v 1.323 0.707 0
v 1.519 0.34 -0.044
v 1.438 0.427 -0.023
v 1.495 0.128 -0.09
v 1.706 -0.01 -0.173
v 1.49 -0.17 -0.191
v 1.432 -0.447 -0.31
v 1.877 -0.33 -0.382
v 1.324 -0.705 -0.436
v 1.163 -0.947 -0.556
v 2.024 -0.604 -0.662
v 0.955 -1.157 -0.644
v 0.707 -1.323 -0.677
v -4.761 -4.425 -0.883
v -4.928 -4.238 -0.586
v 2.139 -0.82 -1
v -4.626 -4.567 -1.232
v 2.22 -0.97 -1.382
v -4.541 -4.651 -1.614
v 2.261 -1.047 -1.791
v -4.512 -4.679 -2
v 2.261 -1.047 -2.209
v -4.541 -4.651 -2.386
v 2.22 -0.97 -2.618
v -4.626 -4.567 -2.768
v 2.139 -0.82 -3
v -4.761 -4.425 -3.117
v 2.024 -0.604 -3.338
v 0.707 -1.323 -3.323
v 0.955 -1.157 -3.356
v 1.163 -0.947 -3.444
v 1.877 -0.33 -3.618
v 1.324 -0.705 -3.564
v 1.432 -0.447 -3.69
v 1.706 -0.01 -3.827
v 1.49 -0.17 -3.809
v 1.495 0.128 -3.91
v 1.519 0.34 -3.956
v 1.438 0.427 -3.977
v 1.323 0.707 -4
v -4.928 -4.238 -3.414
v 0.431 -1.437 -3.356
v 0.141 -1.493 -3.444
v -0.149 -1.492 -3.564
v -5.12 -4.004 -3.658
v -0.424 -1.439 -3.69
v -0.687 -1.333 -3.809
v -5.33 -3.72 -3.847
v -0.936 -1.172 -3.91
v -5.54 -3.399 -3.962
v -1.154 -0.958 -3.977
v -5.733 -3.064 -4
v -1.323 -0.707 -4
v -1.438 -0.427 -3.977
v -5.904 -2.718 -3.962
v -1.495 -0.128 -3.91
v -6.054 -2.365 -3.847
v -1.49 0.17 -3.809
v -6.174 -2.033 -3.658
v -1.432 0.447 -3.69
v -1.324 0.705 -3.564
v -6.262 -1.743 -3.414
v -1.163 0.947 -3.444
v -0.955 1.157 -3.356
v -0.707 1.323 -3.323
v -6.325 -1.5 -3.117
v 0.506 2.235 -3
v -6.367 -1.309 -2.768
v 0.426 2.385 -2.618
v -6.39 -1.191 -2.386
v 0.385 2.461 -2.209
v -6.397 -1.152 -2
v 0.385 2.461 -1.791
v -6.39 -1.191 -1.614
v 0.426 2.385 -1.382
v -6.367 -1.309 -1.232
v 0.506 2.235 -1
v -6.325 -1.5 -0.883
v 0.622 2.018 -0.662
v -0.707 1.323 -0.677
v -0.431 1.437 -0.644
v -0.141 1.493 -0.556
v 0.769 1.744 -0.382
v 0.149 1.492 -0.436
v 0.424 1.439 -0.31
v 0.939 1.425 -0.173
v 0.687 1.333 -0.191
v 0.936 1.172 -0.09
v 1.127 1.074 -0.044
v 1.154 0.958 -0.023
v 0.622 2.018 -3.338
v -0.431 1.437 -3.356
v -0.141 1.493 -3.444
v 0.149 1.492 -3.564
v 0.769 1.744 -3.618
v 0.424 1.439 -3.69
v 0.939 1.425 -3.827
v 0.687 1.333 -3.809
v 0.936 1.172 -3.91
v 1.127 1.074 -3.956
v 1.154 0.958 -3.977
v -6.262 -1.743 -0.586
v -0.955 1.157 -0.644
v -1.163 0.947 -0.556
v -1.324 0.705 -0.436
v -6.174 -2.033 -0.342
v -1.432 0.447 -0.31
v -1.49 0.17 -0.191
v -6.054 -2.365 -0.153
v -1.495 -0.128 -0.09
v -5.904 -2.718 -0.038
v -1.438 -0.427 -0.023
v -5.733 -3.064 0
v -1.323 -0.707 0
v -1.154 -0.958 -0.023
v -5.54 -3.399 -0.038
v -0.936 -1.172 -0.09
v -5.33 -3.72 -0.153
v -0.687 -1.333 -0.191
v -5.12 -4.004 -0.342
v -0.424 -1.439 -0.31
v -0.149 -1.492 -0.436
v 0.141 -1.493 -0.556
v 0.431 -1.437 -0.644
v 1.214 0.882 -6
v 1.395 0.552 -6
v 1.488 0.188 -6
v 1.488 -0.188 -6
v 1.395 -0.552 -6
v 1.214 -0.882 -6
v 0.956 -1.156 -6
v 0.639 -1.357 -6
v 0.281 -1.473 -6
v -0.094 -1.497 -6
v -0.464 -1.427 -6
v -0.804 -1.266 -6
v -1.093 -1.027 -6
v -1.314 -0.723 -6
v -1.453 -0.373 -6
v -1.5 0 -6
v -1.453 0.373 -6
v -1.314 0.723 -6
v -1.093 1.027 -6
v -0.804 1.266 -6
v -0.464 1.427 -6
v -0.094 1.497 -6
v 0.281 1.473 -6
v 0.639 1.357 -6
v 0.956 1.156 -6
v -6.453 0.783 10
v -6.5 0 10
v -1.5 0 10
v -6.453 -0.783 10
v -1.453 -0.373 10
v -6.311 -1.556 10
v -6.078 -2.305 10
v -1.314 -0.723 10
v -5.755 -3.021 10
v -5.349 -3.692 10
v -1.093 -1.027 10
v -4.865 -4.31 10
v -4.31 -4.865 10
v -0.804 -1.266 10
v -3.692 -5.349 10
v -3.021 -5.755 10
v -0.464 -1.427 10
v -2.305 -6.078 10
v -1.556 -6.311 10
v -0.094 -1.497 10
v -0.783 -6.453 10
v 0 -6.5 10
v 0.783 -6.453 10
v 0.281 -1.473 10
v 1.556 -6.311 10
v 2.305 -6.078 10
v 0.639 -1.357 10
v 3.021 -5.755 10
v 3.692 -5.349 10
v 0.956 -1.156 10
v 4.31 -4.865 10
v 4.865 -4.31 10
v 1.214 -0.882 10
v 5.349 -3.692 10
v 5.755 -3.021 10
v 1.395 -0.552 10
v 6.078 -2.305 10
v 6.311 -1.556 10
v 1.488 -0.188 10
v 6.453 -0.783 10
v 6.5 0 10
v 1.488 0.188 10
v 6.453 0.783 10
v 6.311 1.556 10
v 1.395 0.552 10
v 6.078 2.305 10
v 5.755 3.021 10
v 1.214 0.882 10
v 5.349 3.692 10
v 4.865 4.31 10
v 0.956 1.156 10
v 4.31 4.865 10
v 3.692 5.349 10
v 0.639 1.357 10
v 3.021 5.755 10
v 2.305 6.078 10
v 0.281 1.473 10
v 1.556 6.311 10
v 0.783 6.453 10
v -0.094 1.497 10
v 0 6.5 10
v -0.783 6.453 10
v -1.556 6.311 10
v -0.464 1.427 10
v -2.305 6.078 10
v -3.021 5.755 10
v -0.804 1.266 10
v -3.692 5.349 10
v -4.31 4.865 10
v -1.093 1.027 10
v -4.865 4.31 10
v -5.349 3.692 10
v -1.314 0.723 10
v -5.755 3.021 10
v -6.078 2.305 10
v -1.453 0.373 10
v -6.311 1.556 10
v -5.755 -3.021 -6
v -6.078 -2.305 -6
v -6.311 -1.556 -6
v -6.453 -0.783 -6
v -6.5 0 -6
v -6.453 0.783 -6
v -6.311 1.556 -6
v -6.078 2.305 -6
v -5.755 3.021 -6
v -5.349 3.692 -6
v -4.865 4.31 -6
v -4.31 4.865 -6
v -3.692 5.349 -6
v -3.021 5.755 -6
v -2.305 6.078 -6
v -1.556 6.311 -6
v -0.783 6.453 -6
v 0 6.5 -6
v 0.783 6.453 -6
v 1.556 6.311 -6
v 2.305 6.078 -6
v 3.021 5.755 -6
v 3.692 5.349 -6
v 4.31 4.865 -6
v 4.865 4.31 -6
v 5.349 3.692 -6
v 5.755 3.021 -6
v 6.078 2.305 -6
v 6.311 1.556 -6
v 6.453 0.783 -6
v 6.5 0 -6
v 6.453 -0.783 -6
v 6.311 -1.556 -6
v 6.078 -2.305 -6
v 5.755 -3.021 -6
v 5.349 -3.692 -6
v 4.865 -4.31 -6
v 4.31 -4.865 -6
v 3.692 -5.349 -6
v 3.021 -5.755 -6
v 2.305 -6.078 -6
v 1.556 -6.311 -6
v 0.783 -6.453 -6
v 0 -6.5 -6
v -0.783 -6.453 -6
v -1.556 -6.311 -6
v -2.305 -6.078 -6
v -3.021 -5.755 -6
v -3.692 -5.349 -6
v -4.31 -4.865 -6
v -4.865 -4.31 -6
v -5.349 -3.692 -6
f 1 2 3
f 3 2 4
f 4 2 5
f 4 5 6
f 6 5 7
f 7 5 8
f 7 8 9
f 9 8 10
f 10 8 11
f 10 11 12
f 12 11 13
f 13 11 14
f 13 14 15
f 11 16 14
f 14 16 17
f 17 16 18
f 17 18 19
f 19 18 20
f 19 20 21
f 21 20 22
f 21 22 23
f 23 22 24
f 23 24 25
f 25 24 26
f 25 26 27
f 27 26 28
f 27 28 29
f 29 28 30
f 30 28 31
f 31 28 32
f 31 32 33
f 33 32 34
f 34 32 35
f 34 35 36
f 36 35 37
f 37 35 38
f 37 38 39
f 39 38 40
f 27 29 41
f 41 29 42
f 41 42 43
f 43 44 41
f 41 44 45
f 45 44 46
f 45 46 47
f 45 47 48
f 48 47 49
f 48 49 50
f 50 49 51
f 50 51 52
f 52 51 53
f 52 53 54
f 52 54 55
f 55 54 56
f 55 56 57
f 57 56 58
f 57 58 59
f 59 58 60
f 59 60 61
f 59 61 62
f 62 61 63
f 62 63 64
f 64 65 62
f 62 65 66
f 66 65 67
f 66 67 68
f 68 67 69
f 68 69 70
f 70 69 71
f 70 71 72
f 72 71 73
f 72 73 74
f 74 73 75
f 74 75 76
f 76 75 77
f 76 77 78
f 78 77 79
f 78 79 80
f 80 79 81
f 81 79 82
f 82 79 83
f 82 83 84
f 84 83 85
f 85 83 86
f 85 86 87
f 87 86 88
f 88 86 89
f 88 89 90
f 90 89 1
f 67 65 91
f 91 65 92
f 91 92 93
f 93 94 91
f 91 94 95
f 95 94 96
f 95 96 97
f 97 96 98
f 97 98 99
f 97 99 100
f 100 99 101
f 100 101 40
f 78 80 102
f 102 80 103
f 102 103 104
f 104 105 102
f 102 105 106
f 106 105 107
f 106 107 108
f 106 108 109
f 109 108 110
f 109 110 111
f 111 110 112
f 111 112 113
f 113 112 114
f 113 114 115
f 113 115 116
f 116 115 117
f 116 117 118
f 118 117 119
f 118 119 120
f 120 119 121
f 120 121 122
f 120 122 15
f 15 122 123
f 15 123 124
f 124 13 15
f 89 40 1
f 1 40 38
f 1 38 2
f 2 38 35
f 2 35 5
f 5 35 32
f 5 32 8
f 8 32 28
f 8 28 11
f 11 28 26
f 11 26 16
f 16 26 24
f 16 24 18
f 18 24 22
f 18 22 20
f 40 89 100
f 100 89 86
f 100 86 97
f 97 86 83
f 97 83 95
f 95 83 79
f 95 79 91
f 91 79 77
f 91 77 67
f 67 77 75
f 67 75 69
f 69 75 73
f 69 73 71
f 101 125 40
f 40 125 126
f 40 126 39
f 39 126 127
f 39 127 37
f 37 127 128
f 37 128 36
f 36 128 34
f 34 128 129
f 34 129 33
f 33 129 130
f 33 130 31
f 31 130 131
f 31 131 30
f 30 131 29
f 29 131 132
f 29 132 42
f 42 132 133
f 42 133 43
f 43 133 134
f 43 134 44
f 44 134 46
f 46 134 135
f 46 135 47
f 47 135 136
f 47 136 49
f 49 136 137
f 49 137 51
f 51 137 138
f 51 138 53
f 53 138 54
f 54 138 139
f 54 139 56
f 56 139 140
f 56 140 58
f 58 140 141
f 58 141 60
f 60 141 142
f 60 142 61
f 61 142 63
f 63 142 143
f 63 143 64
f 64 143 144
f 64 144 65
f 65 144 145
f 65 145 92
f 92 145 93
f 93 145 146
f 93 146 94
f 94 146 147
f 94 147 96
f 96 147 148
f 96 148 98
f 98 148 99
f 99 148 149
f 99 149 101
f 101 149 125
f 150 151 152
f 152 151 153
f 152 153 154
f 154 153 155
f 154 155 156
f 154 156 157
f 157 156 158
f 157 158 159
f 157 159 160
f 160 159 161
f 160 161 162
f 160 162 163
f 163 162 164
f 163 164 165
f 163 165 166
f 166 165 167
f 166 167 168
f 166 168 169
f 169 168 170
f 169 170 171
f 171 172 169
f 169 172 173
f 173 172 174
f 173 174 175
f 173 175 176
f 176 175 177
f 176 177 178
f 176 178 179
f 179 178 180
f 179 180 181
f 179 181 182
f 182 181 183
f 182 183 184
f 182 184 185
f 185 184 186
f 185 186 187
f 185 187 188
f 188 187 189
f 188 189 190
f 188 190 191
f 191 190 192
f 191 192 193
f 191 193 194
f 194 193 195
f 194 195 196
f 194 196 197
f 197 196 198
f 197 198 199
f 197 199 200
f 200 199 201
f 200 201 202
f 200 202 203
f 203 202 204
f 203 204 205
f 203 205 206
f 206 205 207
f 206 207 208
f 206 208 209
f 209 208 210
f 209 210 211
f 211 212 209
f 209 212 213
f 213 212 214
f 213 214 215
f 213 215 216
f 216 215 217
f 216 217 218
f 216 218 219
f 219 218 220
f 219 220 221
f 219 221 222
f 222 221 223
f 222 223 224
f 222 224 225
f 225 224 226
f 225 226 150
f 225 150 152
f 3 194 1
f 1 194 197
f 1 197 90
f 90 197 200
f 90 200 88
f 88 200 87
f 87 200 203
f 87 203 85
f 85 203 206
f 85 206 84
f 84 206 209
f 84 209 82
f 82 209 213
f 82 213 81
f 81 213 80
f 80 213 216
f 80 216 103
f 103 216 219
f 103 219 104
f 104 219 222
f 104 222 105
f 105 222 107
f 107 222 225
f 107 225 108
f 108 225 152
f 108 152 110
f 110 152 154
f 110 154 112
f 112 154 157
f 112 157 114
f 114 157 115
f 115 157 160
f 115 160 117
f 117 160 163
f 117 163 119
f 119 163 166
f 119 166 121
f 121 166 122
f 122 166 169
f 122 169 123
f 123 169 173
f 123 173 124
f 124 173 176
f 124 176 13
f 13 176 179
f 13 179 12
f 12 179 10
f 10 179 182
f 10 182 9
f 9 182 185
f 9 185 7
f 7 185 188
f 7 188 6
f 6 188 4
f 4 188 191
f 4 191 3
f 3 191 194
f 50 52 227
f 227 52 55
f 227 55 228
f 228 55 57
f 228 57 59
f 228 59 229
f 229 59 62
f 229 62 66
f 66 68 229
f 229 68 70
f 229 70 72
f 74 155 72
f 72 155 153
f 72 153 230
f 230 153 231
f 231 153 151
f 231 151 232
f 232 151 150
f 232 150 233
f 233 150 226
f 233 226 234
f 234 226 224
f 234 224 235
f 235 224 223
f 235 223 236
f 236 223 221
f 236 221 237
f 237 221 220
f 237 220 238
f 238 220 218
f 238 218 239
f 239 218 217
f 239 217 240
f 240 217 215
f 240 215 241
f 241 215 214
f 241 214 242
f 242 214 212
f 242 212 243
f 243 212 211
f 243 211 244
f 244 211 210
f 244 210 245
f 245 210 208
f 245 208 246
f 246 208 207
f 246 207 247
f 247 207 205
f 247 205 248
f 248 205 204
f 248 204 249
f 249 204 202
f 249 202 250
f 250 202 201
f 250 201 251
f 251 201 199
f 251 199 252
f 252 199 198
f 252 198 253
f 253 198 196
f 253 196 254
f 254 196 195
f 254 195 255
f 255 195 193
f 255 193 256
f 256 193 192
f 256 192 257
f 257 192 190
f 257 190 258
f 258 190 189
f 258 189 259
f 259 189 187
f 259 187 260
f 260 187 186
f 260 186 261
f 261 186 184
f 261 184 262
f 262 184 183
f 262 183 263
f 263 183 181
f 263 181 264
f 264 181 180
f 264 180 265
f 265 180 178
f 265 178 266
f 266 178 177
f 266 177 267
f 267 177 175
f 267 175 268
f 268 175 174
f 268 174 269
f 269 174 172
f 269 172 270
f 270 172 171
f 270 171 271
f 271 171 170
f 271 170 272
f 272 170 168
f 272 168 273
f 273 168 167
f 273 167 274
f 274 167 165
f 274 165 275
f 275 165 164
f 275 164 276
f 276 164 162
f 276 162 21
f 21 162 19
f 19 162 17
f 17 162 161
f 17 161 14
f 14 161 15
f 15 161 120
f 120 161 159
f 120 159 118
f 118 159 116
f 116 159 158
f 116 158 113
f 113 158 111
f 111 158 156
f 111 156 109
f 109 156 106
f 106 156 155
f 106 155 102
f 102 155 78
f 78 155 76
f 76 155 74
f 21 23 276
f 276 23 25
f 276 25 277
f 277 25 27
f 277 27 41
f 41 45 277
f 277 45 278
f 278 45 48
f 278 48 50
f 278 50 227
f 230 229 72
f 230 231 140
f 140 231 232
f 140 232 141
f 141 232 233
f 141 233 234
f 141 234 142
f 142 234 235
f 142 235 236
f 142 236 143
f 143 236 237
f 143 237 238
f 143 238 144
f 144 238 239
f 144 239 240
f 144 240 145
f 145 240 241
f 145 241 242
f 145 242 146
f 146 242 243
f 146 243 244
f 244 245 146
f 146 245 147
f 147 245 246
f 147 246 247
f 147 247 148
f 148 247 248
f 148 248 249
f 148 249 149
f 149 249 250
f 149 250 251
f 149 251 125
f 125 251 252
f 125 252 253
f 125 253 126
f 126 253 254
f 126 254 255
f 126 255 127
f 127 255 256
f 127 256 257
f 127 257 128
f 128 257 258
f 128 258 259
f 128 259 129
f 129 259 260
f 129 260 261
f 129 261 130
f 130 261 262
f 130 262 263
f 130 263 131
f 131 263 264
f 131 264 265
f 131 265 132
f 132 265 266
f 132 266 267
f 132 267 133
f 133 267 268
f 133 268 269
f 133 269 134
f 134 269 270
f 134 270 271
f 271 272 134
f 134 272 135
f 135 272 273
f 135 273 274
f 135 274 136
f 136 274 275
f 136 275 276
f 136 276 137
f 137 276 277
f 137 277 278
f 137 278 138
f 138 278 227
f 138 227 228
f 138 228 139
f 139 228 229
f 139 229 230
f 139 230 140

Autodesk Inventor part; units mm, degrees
ref_plane "YZ Plane" through (0, 0, 0) normal (1, 0, 0) x (0, 1, 0)
ref_plane "XZ Plane" through (0, 0, 0) normal (0, 1, 0) x (-1, 0, 0)
ref_plane "XY Plane" through (0, 0, 0) normal (0, 0, 1) x (1, 0, 0)
sketch "Sketch1" plane through (0.3113, 7.3239, 0) normal (0, 0, -1) x (-1, 0, 0)
  circle A0 centre (0.3113, -7.3239) radius 6.5
  circle A1 centre (0.3113, -7.3239) radius 1.5
  dimension "d0" = 13
  dimension "d1" = 3
extrude "Extrusion1" add sketch "Sketch1" along normal blind 6 and the other way blind 10
ref_plane "Work Plane1" through (-5.7325, -3.064, 0) normal (-0.8819, -0.4714, 0) x (0.4714, -0.8819, 0)
sketch "Sketch2" plane through (-5.7325, -3.064, 0) normal (-0.8819, -0.4714, 0) x (0.4714, -0.8819, 0)
  circle A0 centre (0, -2) radius 2
  point P0 (0, 0)
  dimension "d6" = 4
  dimension "d7" = 2
extrude "Extrusion2" cut sketch "Sketch2" against normal blind 8
properties part number "gears_3mm_17TModded"
